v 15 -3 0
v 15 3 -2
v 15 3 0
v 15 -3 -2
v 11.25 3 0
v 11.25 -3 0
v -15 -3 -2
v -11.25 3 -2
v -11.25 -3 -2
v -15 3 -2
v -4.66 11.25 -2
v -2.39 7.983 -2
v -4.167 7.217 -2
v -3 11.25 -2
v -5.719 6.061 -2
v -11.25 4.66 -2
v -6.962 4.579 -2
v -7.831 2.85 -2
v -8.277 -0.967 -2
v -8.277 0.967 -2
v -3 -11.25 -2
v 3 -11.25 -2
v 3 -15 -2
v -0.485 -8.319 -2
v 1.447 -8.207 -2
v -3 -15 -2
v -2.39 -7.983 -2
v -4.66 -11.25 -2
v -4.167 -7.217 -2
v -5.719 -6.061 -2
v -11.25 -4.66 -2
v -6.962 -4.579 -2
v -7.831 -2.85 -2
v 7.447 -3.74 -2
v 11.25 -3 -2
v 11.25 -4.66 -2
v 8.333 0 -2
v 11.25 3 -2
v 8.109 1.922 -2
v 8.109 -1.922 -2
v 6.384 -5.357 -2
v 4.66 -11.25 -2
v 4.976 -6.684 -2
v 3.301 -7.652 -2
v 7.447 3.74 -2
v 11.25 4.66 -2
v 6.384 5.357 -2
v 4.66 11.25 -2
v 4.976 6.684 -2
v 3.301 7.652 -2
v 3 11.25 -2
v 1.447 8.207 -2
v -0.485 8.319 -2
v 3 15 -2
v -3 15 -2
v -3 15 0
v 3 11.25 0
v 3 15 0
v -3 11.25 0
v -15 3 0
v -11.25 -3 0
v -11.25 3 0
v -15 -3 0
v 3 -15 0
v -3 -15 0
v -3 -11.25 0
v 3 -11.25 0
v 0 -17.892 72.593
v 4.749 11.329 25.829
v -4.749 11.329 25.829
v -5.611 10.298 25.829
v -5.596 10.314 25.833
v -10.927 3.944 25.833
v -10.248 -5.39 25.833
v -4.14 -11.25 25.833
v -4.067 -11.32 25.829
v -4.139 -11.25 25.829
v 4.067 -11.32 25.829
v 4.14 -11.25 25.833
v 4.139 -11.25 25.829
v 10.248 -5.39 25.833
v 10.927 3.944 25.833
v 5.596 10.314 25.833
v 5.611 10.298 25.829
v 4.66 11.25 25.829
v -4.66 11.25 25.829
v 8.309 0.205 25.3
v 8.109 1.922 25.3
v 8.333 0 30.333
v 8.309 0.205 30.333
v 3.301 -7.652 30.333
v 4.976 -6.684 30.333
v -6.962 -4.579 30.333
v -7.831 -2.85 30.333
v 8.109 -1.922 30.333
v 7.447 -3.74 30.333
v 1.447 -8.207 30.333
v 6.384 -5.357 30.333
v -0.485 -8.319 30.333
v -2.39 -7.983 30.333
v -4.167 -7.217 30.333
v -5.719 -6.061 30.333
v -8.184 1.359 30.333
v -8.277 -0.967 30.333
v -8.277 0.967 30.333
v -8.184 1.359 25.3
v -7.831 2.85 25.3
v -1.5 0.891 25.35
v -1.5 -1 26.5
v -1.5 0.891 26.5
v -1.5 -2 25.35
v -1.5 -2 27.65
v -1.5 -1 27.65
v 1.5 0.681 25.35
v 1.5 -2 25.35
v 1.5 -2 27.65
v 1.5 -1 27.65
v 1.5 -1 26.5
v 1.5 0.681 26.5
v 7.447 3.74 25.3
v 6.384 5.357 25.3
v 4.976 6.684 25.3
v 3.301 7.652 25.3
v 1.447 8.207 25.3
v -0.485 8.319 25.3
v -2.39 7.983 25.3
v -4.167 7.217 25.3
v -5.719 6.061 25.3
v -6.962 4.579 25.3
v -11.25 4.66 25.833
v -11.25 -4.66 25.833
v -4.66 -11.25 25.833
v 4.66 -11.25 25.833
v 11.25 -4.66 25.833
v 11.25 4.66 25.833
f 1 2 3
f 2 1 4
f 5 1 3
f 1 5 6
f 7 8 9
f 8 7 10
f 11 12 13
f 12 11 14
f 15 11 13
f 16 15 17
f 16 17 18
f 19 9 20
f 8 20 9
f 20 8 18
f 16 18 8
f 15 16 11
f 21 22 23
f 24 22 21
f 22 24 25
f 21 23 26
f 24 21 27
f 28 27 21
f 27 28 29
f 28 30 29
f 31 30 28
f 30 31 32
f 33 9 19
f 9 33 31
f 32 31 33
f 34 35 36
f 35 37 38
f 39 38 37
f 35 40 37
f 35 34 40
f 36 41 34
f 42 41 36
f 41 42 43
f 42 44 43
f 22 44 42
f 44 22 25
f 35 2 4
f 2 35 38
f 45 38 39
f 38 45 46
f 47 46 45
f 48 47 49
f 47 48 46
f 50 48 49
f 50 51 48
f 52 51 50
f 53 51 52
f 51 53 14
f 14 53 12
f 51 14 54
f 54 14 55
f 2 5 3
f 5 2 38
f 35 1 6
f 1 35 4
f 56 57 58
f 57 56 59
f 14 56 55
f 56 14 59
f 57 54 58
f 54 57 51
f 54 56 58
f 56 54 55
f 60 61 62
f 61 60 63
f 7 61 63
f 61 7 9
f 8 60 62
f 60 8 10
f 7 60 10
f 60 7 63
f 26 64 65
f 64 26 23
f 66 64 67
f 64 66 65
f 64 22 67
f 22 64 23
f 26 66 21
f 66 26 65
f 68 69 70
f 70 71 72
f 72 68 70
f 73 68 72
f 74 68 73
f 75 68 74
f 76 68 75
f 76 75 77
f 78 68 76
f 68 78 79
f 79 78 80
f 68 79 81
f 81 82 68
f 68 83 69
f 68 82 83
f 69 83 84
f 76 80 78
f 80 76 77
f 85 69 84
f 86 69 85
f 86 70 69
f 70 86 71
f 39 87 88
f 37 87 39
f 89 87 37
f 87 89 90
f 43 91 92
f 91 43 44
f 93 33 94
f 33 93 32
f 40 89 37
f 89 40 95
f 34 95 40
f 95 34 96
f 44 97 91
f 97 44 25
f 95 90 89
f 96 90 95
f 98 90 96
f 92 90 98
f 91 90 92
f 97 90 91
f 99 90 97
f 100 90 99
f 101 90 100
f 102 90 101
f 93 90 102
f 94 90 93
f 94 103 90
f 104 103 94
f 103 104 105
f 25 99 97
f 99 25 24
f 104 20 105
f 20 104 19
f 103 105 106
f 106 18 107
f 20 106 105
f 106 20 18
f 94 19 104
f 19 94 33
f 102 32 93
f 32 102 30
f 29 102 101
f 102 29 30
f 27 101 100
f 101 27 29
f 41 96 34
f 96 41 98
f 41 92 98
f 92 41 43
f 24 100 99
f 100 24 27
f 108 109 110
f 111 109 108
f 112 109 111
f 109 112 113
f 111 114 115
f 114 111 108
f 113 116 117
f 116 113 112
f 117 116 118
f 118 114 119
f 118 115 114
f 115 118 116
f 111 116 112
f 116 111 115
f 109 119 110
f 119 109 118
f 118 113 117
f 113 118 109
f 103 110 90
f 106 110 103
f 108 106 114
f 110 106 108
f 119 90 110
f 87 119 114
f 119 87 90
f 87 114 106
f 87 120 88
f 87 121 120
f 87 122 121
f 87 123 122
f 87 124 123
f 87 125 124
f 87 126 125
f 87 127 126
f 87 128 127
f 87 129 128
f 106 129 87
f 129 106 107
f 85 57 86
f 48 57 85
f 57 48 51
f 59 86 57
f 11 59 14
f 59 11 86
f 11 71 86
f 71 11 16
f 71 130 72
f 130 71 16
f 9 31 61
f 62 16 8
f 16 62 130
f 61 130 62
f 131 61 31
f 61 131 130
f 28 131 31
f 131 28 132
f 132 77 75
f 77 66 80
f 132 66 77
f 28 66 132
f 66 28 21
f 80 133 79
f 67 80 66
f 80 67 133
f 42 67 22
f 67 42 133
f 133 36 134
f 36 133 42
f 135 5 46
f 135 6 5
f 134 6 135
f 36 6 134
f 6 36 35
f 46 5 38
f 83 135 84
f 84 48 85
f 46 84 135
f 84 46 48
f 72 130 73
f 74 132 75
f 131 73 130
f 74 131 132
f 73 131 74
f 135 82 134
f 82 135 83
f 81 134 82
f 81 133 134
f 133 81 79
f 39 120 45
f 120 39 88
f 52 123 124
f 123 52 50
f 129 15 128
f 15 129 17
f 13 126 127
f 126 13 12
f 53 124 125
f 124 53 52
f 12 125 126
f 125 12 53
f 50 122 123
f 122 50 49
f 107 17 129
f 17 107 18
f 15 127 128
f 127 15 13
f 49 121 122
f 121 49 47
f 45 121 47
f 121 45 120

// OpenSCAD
spring_idle = 25;
radius = 15;
module rotated_cube(angle, magic_angle, cube_side, cube_height){
    color("white")
    rotate([magic_angle, 0, angle])
    translate([0, cube_side, 0])
    cube([cube_side*2, cube_side, cube_height], center = true);
}

module hook(){
    color("red")
    rotate([0,0,180])
    union(){
        inner_rad = 9;
        
        translate([0,0,-1.2])
        
        linear_extrude(20){
            polygon([for(i = [1:10:180]) [inner_rad*cos(i), inner_rad*sin(i)]]);
        }
        
        rotate([0,180,0])
        difference(){
            translate([0, 0, 0])
            cube([3,4,2.3], center = true);
            translate([0,0,-2])
            rotate([0, 0, 0])
            cube([5,2,4], center = true);
        }
    }
}

step = 4;
steps = 8;
angle = 360;
small = 0.8;

//  Horn
union(){
    
    //scale(25/15){
        difference(){
            union(){
                difference(){
                    color("#004444")
                    translate([0,0,-16.6725])
                    difference(){
                        union(){
                            translate([0, -5.8*25/15, 40*25/15])
                            rotate([20, 0, 0])
                            cylinder(36*25/15, 8*25/15, 4*25/15, center = true);
                                
                        }
                        union(){
                            translate([0, -5.8*25/15, 40*25/15])
                            rotate([20, 0, 0])
                            for(i = [0:1:steps]){
                               rotated_cube(angle/steps*i, 12, 6*25/15, 40*25/15);
                            };
                            
                        }
                    }
                    
                    color("#4444EE")
                    union(){
                        translate([0, 0, 5.5*25/15])
                        cube([40*25/15, 40*25/15, 33.325], center = true);
                        translate([0, 0, -2.2*25/15])
                        cylinder(34, 5*25/15, 5*25/15);
                    }
                }
                
                difference(){
                    translate([0, 0, 26.5])
                    rotate([0, 0, 180])
                    hook();
                    
                    translate([0, -5.8*25/15, 40*25/15-16.6725])
                    rotate([20, 0, 0])
                    for(i = [0:1:steps]){
                        rotated_cube(angle/steps*i, 12, 6*25/15, 40*25/15);
                    };
                }
                
                difference(){
                    translate([0, 0, -1.2*25/15])
                    cylinder(16.7*25/15, 10*25/15, 10*25/15);
                    
                    translate([0, 0, 16*25/15])
                    for(i = [0:1:steps]){
                       rotated_cube(angle/steps*i, 0, 13.5*25/15, 40*25/15);
                    }
                    translate([0, 0, -2.2*25/15])
                    cylinder(32*16/25*25/15, 5*25/15, 5*25/15);
                }
            }
        }
    //}

        
        for(i = [0:1:4]){
                rotate([0, 0, 90*i])
                translate([12+1, 0, -1])
                cube([4, 6, 2], center = true);
        }

        
}
